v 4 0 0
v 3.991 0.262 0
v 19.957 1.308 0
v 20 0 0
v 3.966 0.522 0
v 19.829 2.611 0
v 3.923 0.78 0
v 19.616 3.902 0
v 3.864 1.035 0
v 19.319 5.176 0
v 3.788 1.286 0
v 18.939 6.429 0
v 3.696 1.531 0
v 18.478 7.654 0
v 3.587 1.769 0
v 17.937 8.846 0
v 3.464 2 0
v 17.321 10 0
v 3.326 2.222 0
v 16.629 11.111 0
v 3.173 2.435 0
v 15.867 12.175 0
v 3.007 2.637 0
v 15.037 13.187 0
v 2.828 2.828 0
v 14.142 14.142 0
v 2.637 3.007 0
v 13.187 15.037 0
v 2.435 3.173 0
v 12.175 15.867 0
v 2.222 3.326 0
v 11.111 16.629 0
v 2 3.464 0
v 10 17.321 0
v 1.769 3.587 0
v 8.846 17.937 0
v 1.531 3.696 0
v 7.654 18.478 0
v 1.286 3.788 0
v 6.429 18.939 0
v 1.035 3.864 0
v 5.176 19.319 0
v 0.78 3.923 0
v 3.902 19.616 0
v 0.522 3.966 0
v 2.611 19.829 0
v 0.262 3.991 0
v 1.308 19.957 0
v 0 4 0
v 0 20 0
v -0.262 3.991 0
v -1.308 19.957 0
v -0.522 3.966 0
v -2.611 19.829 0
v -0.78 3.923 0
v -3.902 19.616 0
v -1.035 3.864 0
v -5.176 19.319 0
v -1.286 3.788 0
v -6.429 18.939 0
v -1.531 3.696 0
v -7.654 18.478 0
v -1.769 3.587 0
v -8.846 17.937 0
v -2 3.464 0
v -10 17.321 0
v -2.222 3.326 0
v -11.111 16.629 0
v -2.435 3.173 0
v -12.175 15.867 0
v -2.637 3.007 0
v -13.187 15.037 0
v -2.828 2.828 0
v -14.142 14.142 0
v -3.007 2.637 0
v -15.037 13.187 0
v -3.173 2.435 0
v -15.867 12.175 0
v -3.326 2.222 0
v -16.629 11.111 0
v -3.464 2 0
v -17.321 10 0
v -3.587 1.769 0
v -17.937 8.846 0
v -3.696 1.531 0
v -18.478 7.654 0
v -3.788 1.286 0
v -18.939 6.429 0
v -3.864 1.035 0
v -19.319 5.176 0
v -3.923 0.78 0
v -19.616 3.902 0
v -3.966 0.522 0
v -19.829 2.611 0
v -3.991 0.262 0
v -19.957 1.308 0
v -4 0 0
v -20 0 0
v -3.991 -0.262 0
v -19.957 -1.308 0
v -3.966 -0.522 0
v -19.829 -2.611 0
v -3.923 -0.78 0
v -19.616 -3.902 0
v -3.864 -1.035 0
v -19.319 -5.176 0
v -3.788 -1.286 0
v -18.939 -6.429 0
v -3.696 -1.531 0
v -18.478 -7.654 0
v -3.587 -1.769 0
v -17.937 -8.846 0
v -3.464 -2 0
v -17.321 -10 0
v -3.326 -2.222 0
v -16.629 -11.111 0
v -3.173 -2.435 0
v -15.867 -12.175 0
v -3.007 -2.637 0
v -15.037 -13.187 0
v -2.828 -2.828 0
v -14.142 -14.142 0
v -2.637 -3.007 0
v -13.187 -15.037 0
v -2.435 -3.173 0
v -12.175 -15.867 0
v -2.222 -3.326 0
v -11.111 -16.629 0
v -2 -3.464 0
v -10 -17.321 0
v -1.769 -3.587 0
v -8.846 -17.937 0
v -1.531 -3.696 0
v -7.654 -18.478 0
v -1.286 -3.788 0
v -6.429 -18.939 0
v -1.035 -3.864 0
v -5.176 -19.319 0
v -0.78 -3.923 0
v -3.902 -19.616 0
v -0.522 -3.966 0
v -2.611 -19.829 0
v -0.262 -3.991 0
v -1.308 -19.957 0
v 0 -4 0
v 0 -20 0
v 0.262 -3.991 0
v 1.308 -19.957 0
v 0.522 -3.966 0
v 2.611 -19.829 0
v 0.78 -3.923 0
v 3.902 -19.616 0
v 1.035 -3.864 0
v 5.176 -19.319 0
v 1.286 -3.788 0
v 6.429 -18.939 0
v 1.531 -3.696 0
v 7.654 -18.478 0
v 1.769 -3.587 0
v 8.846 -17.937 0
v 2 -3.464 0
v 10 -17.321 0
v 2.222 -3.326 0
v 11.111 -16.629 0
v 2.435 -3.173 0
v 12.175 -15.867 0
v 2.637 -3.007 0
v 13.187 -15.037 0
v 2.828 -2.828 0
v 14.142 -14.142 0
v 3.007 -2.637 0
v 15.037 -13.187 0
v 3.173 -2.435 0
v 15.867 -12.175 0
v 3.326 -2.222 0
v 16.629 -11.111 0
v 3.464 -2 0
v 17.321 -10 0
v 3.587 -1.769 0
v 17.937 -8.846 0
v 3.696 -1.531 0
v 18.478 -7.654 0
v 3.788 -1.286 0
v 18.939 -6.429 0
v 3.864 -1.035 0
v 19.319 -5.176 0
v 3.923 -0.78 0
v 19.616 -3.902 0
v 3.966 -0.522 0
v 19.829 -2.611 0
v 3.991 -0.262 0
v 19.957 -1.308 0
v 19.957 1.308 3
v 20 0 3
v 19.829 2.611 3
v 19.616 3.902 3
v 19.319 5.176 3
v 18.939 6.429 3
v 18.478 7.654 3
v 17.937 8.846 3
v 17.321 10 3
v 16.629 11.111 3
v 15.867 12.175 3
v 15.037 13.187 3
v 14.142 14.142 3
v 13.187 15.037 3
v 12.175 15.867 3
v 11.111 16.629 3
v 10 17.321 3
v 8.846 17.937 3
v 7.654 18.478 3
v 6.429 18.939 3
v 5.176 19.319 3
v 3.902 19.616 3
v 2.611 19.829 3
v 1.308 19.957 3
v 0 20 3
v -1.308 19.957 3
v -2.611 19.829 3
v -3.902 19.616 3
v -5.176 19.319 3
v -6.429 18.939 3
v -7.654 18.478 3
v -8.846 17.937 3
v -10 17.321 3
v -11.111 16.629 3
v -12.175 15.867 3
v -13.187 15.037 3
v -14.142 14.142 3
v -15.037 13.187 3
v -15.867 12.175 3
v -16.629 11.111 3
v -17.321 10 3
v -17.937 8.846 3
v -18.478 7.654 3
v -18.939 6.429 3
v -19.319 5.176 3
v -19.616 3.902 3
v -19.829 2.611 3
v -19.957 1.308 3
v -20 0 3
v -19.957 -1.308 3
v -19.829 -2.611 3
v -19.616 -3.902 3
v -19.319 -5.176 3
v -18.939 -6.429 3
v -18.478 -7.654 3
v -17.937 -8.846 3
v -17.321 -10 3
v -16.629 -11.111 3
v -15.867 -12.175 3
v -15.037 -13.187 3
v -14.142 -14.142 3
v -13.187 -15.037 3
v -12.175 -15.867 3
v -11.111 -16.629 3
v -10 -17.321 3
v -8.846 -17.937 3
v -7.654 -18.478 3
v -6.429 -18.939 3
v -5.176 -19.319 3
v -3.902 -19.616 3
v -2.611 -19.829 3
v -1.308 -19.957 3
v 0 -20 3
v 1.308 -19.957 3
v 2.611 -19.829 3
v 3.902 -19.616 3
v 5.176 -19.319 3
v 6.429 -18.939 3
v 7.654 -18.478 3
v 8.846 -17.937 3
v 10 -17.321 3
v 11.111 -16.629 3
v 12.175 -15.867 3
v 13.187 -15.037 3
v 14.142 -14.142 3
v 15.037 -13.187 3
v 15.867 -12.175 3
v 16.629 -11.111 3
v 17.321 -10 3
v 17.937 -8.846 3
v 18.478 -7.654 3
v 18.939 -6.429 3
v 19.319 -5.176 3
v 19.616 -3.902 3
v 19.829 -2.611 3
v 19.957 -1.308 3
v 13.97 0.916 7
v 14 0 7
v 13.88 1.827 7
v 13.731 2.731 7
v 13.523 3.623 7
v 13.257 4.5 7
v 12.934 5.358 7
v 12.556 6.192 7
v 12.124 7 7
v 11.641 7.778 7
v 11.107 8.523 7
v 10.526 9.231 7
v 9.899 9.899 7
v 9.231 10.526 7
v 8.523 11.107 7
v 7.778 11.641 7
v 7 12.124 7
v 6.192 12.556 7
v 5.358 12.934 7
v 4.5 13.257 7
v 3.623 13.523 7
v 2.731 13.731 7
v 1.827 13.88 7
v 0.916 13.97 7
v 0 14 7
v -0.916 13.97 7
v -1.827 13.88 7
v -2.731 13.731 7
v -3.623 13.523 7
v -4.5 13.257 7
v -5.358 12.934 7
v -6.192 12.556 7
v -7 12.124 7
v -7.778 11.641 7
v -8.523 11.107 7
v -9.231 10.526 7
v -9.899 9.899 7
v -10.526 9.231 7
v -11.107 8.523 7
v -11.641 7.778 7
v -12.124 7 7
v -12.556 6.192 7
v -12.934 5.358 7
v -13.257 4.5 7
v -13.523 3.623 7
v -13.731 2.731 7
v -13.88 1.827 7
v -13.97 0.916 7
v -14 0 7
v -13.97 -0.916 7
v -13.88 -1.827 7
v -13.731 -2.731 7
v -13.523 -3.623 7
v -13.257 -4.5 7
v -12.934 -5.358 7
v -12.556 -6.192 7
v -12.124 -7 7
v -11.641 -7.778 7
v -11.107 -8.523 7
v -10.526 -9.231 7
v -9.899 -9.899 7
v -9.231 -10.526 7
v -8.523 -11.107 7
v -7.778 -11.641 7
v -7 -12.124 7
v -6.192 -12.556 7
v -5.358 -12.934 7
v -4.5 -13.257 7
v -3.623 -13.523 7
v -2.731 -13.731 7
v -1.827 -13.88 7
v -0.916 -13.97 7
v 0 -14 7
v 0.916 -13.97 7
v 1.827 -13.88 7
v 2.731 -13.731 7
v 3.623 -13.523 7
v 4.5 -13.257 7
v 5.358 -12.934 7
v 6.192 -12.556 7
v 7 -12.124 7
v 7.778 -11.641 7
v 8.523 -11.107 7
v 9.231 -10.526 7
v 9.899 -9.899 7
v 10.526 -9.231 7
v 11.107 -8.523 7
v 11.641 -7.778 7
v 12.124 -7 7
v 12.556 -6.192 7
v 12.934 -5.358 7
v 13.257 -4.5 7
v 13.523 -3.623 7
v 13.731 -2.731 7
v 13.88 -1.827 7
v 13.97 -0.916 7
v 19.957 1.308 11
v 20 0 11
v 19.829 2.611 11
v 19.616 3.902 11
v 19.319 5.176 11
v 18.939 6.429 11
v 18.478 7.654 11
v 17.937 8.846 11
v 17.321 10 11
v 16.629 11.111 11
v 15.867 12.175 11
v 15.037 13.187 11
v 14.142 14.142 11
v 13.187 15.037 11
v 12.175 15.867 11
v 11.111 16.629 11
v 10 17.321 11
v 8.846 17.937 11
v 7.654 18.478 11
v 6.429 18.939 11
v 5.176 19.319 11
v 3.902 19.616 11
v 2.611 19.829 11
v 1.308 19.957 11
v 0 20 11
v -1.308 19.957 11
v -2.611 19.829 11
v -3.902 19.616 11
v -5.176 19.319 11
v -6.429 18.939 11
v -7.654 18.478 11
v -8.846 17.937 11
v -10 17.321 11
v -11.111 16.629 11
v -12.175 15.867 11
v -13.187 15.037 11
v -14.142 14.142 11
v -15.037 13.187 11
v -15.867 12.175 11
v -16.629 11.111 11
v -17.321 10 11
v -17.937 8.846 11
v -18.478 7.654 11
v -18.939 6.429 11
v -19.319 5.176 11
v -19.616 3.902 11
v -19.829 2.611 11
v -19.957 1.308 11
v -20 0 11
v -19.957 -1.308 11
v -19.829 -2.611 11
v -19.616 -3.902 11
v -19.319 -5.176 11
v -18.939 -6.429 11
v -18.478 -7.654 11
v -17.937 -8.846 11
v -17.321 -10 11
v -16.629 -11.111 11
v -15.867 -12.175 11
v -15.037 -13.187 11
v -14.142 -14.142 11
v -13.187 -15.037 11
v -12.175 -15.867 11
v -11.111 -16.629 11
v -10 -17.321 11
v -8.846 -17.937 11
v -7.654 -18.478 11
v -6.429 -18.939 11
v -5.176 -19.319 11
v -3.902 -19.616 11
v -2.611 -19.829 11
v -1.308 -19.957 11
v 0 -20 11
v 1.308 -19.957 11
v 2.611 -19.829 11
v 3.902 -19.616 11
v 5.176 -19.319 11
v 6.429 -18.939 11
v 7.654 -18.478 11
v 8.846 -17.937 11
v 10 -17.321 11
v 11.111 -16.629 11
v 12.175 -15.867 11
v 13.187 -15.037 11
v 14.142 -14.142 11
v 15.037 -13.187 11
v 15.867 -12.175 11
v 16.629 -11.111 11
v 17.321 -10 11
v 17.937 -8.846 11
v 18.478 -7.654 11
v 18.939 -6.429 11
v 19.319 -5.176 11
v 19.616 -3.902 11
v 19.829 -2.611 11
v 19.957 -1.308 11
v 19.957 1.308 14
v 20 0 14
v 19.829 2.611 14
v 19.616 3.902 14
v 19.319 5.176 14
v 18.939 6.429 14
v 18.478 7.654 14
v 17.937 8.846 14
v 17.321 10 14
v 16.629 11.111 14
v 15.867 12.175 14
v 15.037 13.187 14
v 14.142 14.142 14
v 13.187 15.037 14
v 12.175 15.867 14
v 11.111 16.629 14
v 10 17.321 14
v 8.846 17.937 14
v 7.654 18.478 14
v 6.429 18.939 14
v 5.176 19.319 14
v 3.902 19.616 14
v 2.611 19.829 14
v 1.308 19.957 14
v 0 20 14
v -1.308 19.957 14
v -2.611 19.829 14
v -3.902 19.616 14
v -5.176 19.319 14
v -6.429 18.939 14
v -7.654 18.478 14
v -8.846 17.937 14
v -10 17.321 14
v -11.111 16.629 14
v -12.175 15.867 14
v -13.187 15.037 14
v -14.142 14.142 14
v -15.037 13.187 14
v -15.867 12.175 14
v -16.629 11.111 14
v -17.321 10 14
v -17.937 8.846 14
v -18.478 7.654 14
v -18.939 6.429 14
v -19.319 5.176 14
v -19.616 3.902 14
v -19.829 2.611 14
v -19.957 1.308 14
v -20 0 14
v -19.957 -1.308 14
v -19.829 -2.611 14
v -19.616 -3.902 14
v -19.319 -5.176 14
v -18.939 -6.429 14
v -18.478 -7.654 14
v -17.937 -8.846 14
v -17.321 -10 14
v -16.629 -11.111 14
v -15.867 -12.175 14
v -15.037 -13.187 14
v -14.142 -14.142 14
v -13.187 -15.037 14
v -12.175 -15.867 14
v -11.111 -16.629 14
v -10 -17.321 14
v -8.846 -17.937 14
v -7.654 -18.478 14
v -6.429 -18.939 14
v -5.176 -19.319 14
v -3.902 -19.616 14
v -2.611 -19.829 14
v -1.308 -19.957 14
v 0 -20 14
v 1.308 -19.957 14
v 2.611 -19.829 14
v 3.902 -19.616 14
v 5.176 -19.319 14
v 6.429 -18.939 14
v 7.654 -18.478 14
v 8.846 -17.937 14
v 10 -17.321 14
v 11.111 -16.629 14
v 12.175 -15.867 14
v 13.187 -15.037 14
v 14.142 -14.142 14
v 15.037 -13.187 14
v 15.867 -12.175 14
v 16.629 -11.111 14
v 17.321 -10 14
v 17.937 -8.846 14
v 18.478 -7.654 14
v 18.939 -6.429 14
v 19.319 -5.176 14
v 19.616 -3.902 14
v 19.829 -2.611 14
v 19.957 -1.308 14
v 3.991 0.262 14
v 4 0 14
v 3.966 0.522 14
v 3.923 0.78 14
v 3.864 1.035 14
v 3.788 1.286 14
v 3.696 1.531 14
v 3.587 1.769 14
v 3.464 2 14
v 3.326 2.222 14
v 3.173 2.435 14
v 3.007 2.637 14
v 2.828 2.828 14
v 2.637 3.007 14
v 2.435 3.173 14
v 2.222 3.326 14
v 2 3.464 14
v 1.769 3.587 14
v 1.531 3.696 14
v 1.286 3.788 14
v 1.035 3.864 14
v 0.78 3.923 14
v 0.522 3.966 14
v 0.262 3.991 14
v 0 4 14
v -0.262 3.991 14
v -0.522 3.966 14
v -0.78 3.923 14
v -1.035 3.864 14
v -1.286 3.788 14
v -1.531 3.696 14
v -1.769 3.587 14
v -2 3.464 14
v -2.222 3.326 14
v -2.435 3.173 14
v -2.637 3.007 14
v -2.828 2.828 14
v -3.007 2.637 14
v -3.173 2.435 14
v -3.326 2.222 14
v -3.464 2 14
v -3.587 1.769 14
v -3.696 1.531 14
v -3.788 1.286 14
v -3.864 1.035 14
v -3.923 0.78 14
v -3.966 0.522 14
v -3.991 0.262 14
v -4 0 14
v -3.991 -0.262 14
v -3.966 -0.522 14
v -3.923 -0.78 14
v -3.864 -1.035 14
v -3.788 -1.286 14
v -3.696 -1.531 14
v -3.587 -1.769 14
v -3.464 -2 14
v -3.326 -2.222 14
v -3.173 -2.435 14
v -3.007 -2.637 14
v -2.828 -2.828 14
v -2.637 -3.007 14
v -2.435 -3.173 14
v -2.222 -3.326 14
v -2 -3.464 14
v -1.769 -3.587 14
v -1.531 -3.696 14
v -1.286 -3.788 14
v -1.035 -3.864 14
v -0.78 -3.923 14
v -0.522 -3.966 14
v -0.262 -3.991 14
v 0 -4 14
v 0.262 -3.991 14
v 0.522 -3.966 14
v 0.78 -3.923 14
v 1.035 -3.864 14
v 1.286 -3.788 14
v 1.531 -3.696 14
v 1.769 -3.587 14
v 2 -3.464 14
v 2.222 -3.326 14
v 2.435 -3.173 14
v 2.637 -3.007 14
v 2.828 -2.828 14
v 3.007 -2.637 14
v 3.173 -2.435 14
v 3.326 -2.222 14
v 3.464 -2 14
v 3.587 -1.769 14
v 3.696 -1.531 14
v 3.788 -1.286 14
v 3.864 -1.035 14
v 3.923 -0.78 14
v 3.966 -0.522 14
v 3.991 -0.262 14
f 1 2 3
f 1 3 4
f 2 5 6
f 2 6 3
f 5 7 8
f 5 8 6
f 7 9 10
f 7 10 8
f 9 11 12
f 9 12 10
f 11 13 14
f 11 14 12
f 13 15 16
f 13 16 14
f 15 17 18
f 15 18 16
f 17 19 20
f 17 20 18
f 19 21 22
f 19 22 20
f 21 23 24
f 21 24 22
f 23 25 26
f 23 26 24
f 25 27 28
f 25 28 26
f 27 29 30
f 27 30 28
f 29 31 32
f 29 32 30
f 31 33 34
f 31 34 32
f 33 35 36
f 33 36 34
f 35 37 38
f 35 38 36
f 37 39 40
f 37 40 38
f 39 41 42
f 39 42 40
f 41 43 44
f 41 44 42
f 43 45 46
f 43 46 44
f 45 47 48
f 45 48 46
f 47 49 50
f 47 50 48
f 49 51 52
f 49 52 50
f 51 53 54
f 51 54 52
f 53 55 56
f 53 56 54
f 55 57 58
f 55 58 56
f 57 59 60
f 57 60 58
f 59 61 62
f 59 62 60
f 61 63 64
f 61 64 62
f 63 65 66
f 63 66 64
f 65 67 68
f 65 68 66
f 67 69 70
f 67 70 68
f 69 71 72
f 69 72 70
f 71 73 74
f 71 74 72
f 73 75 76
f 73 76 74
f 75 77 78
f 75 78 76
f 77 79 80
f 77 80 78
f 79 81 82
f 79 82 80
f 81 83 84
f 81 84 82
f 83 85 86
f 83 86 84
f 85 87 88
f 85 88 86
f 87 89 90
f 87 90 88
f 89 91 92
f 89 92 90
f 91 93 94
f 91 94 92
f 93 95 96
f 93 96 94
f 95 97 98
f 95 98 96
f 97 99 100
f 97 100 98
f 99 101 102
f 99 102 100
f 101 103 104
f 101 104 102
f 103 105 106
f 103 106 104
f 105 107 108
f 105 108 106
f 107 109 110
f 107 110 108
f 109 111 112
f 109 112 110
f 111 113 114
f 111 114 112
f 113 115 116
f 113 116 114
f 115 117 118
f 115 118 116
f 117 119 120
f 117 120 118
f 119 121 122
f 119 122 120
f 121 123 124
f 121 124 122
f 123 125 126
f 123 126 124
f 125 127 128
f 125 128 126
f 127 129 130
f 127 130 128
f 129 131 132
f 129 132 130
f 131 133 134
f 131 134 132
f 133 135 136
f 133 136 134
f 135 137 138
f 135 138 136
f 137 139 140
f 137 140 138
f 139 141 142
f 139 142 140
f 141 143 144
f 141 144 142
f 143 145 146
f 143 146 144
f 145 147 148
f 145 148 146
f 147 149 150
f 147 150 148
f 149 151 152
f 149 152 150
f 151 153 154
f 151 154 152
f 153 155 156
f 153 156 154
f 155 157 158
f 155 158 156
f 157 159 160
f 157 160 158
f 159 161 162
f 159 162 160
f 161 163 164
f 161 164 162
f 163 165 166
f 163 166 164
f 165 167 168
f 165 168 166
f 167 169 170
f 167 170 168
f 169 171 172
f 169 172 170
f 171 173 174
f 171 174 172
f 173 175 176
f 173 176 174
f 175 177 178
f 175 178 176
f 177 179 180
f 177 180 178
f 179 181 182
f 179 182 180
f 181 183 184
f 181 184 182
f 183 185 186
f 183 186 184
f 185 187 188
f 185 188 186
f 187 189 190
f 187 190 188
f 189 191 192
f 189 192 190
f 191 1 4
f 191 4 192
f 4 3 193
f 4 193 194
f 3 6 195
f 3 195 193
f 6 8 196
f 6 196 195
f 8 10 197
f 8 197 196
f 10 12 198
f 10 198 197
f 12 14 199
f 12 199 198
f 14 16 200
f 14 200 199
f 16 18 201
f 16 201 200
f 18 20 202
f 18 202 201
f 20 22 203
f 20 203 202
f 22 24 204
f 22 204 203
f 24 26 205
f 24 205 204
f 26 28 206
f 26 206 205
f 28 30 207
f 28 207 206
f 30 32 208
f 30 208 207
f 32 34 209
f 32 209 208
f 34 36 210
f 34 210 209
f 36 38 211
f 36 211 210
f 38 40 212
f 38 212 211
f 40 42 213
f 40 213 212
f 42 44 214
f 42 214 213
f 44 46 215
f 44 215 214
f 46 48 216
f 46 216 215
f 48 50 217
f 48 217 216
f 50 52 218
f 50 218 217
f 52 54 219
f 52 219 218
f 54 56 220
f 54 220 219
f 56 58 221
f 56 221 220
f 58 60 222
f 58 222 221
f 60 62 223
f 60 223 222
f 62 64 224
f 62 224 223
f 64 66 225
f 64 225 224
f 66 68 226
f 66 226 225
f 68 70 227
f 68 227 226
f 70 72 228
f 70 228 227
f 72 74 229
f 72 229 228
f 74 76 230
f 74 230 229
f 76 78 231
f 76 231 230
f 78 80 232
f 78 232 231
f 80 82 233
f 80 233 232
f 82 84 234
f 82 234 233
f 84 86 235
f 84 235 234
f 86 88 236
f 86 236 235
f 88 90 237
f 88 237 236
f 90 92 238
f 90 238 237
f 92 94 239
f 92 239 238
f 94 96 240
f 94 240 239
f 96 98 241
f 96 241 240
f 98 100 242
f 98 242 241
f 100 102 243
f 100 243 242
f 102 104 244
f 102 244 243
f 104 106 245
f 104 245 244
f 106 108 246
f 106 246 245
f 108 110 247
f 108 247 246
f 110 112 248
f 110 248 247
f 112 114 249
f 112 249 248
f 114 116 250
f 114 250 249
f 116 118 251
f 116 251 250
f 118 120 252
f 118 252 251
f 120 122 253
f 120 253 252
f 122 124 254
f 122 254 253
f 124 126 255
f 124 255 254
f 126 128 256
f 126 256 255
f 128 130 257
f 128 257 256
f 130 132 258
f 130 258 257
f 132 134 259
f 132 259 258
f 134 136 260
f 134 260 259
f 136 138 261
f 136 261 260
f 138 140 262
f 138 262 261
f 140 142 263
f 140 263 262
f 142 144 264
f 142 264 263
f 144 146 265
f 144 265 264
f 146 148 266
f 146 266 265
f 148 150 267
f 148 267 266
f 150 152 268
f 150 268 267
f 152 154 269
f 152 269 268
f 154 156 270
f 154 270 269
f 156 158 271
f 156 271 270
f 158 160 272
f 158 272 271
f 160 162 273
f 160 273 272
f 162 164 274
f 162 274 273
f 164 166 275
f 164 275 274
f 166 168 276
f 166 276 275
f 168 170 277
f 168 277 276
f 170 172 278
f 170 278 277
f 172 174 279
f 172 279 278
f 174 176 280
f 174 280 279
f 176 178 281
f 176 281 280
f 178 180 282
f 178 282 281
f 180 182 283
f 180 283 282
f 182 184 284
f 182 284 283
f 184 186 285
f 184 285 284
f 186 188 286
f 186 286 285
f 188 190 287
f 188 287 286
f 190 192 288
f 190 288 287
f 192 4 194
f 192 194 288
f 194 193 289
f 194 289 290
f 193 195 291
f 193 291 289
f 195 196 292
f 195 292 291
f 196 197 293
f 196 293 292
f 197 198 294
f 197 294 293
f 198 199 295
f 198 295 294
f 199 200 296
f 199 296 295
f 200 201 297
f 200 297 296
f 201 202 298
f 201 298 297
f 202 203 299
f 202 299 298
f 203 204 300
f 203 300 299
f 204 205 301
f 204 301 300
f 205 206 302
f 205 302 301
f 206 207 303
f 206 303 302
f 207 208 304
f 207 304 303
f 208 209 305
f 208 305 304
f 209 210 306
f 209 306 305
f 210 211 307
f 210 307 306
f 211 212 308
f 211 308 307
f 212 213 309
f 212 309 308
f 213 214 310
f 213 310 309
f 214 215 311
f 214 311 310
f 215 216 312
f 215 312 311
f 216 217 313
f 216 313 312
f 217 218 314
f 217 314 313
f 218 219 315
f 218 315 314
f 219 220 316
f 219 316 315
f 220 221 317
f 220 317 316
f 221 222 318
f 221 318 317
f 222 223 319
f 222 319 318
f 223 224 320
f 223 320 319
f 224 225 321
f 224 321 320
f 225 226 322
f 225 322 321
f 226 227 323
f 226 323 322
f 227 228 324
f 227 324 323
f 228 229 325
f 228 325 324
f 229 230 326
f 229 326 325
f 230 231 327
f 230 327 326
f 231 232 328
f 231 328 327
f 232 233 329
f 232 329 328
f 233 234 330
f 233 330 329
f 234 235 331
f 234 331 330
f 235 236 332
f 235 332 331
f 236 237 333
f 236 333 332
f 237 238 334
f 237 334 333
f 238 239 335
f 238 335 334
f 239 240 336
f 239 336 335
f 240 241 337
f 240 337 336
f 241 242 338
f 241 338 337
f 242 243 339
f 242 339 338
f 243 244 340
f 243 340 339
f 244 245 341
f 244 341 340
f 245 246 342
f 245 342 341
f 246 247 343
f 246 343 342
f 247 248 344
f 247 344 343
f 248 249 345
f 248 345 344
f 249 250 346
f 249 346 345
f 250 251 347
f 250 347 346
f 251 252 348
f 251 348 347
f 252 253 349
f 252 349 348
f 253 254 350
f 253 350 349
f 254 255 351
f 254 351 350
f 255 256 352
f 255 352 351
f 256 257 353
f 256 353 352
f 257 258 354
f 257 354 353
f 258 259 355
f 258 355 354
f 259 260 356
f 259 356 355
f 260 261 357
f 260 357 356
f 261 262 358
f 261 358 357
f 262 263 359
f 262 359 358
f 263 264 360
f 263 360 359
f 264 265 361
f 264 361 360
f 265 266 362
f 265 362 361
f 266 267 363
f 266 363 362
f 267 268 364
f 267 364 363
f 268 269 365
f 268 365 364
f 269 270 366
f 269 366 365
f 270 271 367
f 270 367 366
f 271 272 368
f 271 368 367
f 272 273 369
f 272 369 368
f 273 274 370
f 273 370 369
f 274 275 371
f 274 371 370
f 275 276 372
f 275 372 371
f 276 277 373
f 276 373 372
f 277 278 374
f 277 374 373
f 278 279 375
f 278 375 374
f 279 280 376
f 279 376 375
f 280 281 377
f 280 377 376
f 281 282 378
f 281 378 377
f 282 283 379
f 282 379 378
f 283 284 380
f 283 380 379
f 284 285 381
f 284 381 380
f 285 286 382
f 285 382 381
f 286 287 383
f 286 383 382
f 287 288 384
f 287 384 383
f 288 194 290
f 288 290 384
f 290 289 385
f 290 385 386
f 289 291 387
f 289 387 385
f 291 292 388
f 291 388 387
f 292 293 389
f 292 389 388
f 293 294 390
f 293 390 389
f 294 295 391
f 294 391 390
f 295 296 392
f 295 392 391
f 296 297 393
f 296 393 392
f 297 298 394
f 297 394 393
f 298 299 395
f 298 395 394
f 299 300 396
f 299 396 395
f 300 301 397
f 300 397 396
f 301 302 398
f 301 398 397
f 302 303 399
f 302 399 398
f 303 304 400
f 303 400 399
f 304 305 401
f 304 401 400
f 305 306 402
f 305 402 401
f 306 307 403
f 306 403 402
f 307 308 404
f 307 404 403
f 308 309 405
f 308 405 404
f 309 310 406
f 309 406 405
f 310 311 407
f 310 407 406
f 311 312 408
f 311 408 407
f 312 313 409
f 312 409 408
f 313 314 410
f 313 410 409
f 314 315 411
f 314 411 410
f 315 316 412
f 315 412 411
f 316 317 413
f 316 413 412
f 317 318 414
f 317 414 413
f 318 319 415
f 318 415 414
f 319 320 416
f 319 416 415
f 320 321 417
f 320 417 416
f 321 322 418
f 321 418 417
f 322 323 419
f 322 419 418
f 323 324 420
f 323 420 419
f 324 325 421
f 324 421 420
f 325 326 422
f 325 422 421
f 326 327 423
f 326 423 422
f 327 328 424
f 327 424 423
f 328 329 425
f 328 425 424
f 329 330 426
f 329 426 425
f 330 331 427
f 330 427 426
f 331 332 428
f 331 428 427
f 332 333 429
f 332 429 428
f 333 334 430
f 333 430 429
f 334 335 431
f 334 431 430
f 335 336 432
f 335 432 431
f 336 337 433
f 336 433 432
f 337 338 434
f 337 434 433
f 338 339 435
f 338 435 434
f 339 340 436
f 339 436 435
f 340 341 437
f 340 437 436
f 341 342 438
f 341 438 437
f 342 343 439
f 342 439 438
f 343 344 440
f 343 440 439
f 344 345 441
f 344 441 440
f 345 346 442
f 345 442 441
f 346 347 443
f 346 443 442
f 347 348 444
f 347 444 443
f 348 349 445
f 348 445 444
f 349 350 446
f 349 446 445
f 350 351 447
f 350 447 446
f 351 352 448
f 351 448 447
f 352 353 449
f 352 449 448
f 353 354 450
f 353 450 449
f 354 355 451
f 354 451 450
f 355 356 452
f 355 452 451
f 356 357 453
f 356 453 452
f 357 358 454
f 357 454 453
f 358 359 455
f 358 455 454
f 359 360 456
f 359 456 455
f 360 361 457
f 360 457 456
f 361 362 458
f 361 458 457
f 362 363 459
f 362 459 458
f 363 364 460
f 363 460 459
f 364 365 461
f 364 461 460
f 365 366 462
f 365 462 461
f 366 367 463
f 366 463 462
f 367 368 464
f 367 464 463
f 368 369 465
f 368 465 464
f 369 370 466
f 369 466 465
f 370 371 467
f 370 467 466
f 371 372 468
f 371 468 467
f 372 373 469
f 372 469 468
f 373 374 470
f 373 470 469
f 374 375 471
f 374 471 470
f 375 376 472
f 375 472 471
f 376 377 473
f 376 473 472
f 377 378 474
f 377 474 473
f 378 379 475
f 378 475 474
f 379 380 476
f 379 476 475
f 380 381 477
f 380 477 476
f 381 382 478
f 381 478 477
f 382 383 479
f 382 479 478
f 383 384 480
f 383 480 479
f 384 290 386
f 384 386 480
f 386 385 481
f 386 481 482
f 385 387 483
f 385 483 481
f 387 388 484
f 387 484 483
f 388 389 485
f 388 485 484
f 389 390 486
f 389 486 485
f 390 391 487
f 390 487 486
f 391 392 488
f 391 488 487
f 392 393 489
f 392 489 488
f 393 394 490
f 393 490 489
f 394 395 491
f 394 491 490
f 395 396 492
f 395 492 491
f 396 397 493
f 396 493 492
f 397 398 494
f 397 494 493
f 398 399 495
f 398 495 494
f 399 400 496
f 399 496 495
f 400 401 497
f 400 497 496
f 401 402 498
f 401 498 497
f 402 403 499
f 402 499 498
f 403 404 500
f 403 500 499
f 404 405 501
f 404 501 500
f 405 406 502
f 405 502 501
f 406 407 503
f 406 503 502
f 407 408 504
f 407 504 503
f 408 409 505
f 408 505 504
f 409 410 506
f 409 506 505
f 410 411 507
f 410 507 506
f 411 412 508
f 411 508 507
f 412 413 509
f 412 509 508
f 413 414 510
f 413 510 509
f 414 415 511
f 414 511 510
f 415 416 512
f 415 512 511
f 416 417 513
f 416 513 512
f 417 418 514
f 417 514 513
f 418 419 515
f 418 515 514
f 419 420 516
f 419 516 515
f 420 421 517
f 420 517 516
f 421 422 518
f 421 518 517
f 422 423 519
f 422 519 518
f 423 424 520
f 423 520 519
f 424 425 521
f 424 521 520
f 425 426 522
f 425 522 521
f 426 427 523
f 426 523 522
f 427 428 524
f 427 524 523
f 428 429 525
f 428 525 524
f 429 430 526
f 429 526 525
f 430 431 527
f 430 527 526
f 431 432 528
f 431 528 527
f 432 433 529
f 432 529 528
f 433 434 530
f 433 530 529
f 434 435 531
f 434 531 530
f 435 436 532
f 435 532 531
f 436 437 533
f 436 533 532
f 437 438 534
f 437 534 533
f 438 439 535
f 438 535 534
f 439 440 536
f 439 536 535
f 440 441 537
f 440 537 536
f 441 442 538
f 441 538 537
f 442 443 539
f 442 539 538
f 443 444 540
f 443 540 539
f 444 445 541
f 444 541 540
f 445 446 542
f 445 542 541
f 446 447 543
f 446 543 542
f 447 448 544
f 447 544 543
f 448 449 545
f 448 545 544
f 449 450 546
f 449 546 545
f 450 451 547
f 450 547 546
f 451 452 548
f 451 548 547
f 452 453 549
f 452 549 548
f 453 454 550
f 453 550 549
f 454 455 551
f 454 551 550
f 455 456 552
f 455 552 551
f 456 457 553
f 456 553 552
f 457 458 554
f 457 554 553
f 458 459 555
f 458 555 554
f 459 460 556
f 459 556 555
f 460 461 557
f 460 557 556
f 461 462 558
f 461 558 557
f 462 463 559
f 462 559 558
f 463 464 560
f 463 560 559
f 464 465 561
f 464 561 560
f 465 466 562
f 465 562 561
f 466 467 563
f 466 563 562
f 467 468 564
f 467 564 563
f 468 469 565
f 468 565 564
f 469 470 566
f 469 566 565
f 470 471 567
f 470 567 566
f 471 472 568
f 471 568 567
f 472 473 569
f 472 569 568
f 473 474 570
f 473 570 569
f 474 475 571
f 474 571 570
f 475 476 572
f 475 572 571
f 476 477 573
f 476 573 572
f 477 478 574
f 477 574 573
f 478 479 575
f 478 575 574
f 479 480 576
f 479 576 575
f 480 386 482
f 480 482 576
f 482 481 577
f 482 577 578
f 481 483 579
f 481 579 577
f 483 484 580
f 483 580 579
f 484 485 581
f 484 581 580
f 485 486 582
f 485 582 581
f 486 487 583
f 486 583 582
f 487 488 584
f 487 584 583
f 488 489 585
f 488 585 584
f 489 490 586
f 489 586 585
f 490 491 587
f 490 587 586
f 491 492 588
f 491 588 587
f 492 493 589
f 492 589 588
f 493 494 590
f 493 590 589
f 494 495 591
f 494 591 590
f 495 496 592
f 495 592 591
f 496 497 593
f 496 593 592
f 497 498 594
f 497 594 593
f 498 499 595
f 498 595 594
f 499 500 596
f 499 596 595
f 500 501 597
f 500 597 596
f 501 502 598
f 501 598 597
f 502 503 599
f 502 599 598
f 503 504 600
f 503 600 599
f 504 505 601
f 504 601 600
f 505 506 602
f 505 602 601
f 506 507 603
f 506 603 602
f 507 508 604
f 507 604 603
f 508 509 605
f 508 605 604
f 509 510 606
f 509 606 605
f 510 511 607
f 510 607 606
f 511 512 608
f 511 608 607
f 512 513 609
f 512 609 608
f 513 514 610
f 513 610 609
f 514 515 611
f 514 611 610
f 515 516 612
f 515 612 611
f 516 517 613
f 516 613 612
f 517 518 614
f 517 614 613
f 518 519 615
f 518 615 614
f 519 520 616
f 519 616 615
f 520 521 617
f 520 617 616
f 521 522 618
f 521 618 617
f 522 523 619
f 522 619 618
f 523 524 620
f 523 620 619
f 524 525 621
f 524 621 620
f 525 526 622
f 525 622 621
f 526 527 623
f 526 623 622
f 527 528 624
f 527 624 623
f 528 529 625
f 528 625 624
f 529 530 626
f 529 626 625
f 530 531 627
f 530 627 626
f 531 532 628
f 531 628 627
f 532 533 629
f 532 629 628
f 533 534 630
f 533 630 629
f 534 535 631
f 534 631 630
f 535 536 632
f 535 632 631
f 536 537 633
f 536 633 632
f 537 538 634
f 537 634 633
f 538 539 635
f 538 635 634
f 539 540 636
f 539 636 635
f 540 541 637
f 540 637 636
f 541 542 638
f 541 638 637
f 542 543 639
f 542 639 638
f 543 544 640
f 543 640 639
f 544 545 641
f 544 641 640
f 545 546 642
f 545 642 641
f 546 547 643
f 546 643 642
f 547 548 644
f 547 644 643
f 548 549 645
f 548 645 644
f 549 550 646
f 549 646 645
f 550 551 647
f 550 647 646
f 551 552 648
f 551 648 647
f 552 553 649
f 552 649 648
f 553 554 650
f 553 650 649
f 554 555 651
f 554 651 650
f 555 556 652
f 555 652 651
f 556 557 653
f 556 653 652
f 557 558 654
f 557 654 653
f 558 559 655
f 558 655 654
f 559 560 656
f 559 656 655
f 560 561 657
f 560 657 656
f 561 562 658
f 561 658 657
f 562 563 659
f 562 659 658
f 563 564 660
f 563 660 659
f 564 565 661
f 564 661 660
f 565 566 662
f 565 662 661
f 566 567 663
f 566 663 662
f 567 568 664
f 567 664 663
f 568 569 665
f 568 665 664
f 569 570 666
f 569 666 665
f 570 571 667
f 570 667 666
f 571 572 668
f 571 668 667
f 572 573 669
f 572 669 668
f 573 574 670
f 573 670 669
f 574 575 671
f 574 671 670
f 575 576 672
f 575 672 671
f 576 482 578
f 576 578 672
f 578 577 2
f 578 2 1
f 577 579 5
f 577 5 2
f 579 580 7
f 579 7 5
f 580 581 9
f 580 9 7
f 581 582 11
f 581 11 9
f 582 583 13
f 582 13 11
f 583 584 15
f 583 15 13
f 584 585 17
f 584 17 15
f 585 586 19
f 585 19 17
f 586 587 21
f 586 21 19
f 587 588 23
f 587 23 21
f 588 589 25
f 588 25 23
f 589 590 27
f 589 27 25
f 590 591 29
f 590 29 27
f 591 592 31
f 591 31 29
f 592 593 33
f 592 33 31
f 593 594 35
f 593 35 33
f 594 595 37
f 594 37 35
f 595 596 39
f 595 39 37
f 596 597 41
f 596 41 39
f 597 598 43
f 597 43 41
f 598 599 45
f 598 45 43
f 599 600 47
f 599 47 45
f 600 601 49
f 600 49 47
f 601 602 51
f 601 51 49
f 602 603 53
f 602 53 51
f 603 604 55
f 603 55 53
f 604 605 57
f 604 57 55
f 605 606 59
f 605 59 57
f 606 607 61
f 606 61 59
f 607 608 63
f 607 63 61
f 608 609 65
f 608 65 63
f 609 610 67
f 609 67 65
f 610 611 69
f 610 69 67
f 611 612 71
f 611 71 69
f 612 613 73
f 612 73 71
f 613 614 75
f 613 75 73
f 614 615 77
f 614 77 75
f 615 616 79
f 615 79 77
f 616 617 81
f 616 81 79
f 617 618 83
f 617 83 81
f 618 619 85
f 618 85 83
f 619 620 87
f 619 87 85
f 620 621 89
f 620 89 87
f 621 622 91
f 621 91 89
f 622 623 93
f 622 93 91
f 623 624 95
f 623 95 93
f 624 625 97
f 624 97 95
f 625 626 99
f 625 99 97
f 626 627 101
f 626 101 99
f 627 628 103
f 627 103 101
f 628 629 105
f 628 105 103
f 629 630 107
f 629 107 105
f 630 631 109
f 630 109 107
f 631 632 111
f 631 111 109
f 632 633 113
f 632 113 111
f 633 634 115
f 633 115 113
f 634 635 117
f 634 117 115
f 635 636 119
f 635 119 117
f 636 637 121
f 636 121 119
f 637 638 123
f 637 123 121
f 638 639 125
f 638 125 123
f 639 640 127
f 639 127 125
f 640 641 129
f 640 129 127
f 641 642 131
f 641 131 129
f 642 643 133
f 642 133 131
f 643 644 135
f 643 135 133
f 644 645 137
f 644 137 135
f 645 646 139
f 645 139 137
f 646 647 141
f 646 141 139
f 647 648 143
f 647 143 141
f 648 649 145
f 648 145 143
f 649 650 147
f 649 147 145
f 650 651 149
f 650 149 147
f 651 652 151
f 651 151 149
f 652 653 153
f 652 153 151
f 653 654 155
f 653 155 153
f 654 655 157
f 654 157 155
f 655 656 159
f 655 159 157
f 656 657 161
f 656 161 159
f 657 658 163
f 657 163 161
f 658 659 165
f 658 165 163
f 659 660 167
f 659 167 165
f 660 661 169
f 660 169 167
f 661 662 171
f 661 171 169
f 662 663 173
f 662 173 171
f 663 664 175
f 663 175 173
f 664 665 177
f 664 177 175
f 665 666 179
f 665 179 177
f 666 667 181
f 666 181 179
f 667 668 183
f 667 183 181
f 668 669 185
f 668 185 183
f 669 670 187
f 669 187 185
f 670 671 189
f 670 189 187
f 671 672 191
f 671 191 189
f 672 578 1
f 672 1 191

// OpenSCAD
// Original MechIntel educational model. CC0-1.0. Units: mm.
// Not a standardized or load-rated component.
$fn=96;
// Section points: [radius, height], mm. Edit to change the profile.
section=[[4, 0], [20, 0], [20, 3], [14, 7], [20, 11], [20, 14], [4, 14]];
rotate_extrude($fn=96) polygon(points=section);
